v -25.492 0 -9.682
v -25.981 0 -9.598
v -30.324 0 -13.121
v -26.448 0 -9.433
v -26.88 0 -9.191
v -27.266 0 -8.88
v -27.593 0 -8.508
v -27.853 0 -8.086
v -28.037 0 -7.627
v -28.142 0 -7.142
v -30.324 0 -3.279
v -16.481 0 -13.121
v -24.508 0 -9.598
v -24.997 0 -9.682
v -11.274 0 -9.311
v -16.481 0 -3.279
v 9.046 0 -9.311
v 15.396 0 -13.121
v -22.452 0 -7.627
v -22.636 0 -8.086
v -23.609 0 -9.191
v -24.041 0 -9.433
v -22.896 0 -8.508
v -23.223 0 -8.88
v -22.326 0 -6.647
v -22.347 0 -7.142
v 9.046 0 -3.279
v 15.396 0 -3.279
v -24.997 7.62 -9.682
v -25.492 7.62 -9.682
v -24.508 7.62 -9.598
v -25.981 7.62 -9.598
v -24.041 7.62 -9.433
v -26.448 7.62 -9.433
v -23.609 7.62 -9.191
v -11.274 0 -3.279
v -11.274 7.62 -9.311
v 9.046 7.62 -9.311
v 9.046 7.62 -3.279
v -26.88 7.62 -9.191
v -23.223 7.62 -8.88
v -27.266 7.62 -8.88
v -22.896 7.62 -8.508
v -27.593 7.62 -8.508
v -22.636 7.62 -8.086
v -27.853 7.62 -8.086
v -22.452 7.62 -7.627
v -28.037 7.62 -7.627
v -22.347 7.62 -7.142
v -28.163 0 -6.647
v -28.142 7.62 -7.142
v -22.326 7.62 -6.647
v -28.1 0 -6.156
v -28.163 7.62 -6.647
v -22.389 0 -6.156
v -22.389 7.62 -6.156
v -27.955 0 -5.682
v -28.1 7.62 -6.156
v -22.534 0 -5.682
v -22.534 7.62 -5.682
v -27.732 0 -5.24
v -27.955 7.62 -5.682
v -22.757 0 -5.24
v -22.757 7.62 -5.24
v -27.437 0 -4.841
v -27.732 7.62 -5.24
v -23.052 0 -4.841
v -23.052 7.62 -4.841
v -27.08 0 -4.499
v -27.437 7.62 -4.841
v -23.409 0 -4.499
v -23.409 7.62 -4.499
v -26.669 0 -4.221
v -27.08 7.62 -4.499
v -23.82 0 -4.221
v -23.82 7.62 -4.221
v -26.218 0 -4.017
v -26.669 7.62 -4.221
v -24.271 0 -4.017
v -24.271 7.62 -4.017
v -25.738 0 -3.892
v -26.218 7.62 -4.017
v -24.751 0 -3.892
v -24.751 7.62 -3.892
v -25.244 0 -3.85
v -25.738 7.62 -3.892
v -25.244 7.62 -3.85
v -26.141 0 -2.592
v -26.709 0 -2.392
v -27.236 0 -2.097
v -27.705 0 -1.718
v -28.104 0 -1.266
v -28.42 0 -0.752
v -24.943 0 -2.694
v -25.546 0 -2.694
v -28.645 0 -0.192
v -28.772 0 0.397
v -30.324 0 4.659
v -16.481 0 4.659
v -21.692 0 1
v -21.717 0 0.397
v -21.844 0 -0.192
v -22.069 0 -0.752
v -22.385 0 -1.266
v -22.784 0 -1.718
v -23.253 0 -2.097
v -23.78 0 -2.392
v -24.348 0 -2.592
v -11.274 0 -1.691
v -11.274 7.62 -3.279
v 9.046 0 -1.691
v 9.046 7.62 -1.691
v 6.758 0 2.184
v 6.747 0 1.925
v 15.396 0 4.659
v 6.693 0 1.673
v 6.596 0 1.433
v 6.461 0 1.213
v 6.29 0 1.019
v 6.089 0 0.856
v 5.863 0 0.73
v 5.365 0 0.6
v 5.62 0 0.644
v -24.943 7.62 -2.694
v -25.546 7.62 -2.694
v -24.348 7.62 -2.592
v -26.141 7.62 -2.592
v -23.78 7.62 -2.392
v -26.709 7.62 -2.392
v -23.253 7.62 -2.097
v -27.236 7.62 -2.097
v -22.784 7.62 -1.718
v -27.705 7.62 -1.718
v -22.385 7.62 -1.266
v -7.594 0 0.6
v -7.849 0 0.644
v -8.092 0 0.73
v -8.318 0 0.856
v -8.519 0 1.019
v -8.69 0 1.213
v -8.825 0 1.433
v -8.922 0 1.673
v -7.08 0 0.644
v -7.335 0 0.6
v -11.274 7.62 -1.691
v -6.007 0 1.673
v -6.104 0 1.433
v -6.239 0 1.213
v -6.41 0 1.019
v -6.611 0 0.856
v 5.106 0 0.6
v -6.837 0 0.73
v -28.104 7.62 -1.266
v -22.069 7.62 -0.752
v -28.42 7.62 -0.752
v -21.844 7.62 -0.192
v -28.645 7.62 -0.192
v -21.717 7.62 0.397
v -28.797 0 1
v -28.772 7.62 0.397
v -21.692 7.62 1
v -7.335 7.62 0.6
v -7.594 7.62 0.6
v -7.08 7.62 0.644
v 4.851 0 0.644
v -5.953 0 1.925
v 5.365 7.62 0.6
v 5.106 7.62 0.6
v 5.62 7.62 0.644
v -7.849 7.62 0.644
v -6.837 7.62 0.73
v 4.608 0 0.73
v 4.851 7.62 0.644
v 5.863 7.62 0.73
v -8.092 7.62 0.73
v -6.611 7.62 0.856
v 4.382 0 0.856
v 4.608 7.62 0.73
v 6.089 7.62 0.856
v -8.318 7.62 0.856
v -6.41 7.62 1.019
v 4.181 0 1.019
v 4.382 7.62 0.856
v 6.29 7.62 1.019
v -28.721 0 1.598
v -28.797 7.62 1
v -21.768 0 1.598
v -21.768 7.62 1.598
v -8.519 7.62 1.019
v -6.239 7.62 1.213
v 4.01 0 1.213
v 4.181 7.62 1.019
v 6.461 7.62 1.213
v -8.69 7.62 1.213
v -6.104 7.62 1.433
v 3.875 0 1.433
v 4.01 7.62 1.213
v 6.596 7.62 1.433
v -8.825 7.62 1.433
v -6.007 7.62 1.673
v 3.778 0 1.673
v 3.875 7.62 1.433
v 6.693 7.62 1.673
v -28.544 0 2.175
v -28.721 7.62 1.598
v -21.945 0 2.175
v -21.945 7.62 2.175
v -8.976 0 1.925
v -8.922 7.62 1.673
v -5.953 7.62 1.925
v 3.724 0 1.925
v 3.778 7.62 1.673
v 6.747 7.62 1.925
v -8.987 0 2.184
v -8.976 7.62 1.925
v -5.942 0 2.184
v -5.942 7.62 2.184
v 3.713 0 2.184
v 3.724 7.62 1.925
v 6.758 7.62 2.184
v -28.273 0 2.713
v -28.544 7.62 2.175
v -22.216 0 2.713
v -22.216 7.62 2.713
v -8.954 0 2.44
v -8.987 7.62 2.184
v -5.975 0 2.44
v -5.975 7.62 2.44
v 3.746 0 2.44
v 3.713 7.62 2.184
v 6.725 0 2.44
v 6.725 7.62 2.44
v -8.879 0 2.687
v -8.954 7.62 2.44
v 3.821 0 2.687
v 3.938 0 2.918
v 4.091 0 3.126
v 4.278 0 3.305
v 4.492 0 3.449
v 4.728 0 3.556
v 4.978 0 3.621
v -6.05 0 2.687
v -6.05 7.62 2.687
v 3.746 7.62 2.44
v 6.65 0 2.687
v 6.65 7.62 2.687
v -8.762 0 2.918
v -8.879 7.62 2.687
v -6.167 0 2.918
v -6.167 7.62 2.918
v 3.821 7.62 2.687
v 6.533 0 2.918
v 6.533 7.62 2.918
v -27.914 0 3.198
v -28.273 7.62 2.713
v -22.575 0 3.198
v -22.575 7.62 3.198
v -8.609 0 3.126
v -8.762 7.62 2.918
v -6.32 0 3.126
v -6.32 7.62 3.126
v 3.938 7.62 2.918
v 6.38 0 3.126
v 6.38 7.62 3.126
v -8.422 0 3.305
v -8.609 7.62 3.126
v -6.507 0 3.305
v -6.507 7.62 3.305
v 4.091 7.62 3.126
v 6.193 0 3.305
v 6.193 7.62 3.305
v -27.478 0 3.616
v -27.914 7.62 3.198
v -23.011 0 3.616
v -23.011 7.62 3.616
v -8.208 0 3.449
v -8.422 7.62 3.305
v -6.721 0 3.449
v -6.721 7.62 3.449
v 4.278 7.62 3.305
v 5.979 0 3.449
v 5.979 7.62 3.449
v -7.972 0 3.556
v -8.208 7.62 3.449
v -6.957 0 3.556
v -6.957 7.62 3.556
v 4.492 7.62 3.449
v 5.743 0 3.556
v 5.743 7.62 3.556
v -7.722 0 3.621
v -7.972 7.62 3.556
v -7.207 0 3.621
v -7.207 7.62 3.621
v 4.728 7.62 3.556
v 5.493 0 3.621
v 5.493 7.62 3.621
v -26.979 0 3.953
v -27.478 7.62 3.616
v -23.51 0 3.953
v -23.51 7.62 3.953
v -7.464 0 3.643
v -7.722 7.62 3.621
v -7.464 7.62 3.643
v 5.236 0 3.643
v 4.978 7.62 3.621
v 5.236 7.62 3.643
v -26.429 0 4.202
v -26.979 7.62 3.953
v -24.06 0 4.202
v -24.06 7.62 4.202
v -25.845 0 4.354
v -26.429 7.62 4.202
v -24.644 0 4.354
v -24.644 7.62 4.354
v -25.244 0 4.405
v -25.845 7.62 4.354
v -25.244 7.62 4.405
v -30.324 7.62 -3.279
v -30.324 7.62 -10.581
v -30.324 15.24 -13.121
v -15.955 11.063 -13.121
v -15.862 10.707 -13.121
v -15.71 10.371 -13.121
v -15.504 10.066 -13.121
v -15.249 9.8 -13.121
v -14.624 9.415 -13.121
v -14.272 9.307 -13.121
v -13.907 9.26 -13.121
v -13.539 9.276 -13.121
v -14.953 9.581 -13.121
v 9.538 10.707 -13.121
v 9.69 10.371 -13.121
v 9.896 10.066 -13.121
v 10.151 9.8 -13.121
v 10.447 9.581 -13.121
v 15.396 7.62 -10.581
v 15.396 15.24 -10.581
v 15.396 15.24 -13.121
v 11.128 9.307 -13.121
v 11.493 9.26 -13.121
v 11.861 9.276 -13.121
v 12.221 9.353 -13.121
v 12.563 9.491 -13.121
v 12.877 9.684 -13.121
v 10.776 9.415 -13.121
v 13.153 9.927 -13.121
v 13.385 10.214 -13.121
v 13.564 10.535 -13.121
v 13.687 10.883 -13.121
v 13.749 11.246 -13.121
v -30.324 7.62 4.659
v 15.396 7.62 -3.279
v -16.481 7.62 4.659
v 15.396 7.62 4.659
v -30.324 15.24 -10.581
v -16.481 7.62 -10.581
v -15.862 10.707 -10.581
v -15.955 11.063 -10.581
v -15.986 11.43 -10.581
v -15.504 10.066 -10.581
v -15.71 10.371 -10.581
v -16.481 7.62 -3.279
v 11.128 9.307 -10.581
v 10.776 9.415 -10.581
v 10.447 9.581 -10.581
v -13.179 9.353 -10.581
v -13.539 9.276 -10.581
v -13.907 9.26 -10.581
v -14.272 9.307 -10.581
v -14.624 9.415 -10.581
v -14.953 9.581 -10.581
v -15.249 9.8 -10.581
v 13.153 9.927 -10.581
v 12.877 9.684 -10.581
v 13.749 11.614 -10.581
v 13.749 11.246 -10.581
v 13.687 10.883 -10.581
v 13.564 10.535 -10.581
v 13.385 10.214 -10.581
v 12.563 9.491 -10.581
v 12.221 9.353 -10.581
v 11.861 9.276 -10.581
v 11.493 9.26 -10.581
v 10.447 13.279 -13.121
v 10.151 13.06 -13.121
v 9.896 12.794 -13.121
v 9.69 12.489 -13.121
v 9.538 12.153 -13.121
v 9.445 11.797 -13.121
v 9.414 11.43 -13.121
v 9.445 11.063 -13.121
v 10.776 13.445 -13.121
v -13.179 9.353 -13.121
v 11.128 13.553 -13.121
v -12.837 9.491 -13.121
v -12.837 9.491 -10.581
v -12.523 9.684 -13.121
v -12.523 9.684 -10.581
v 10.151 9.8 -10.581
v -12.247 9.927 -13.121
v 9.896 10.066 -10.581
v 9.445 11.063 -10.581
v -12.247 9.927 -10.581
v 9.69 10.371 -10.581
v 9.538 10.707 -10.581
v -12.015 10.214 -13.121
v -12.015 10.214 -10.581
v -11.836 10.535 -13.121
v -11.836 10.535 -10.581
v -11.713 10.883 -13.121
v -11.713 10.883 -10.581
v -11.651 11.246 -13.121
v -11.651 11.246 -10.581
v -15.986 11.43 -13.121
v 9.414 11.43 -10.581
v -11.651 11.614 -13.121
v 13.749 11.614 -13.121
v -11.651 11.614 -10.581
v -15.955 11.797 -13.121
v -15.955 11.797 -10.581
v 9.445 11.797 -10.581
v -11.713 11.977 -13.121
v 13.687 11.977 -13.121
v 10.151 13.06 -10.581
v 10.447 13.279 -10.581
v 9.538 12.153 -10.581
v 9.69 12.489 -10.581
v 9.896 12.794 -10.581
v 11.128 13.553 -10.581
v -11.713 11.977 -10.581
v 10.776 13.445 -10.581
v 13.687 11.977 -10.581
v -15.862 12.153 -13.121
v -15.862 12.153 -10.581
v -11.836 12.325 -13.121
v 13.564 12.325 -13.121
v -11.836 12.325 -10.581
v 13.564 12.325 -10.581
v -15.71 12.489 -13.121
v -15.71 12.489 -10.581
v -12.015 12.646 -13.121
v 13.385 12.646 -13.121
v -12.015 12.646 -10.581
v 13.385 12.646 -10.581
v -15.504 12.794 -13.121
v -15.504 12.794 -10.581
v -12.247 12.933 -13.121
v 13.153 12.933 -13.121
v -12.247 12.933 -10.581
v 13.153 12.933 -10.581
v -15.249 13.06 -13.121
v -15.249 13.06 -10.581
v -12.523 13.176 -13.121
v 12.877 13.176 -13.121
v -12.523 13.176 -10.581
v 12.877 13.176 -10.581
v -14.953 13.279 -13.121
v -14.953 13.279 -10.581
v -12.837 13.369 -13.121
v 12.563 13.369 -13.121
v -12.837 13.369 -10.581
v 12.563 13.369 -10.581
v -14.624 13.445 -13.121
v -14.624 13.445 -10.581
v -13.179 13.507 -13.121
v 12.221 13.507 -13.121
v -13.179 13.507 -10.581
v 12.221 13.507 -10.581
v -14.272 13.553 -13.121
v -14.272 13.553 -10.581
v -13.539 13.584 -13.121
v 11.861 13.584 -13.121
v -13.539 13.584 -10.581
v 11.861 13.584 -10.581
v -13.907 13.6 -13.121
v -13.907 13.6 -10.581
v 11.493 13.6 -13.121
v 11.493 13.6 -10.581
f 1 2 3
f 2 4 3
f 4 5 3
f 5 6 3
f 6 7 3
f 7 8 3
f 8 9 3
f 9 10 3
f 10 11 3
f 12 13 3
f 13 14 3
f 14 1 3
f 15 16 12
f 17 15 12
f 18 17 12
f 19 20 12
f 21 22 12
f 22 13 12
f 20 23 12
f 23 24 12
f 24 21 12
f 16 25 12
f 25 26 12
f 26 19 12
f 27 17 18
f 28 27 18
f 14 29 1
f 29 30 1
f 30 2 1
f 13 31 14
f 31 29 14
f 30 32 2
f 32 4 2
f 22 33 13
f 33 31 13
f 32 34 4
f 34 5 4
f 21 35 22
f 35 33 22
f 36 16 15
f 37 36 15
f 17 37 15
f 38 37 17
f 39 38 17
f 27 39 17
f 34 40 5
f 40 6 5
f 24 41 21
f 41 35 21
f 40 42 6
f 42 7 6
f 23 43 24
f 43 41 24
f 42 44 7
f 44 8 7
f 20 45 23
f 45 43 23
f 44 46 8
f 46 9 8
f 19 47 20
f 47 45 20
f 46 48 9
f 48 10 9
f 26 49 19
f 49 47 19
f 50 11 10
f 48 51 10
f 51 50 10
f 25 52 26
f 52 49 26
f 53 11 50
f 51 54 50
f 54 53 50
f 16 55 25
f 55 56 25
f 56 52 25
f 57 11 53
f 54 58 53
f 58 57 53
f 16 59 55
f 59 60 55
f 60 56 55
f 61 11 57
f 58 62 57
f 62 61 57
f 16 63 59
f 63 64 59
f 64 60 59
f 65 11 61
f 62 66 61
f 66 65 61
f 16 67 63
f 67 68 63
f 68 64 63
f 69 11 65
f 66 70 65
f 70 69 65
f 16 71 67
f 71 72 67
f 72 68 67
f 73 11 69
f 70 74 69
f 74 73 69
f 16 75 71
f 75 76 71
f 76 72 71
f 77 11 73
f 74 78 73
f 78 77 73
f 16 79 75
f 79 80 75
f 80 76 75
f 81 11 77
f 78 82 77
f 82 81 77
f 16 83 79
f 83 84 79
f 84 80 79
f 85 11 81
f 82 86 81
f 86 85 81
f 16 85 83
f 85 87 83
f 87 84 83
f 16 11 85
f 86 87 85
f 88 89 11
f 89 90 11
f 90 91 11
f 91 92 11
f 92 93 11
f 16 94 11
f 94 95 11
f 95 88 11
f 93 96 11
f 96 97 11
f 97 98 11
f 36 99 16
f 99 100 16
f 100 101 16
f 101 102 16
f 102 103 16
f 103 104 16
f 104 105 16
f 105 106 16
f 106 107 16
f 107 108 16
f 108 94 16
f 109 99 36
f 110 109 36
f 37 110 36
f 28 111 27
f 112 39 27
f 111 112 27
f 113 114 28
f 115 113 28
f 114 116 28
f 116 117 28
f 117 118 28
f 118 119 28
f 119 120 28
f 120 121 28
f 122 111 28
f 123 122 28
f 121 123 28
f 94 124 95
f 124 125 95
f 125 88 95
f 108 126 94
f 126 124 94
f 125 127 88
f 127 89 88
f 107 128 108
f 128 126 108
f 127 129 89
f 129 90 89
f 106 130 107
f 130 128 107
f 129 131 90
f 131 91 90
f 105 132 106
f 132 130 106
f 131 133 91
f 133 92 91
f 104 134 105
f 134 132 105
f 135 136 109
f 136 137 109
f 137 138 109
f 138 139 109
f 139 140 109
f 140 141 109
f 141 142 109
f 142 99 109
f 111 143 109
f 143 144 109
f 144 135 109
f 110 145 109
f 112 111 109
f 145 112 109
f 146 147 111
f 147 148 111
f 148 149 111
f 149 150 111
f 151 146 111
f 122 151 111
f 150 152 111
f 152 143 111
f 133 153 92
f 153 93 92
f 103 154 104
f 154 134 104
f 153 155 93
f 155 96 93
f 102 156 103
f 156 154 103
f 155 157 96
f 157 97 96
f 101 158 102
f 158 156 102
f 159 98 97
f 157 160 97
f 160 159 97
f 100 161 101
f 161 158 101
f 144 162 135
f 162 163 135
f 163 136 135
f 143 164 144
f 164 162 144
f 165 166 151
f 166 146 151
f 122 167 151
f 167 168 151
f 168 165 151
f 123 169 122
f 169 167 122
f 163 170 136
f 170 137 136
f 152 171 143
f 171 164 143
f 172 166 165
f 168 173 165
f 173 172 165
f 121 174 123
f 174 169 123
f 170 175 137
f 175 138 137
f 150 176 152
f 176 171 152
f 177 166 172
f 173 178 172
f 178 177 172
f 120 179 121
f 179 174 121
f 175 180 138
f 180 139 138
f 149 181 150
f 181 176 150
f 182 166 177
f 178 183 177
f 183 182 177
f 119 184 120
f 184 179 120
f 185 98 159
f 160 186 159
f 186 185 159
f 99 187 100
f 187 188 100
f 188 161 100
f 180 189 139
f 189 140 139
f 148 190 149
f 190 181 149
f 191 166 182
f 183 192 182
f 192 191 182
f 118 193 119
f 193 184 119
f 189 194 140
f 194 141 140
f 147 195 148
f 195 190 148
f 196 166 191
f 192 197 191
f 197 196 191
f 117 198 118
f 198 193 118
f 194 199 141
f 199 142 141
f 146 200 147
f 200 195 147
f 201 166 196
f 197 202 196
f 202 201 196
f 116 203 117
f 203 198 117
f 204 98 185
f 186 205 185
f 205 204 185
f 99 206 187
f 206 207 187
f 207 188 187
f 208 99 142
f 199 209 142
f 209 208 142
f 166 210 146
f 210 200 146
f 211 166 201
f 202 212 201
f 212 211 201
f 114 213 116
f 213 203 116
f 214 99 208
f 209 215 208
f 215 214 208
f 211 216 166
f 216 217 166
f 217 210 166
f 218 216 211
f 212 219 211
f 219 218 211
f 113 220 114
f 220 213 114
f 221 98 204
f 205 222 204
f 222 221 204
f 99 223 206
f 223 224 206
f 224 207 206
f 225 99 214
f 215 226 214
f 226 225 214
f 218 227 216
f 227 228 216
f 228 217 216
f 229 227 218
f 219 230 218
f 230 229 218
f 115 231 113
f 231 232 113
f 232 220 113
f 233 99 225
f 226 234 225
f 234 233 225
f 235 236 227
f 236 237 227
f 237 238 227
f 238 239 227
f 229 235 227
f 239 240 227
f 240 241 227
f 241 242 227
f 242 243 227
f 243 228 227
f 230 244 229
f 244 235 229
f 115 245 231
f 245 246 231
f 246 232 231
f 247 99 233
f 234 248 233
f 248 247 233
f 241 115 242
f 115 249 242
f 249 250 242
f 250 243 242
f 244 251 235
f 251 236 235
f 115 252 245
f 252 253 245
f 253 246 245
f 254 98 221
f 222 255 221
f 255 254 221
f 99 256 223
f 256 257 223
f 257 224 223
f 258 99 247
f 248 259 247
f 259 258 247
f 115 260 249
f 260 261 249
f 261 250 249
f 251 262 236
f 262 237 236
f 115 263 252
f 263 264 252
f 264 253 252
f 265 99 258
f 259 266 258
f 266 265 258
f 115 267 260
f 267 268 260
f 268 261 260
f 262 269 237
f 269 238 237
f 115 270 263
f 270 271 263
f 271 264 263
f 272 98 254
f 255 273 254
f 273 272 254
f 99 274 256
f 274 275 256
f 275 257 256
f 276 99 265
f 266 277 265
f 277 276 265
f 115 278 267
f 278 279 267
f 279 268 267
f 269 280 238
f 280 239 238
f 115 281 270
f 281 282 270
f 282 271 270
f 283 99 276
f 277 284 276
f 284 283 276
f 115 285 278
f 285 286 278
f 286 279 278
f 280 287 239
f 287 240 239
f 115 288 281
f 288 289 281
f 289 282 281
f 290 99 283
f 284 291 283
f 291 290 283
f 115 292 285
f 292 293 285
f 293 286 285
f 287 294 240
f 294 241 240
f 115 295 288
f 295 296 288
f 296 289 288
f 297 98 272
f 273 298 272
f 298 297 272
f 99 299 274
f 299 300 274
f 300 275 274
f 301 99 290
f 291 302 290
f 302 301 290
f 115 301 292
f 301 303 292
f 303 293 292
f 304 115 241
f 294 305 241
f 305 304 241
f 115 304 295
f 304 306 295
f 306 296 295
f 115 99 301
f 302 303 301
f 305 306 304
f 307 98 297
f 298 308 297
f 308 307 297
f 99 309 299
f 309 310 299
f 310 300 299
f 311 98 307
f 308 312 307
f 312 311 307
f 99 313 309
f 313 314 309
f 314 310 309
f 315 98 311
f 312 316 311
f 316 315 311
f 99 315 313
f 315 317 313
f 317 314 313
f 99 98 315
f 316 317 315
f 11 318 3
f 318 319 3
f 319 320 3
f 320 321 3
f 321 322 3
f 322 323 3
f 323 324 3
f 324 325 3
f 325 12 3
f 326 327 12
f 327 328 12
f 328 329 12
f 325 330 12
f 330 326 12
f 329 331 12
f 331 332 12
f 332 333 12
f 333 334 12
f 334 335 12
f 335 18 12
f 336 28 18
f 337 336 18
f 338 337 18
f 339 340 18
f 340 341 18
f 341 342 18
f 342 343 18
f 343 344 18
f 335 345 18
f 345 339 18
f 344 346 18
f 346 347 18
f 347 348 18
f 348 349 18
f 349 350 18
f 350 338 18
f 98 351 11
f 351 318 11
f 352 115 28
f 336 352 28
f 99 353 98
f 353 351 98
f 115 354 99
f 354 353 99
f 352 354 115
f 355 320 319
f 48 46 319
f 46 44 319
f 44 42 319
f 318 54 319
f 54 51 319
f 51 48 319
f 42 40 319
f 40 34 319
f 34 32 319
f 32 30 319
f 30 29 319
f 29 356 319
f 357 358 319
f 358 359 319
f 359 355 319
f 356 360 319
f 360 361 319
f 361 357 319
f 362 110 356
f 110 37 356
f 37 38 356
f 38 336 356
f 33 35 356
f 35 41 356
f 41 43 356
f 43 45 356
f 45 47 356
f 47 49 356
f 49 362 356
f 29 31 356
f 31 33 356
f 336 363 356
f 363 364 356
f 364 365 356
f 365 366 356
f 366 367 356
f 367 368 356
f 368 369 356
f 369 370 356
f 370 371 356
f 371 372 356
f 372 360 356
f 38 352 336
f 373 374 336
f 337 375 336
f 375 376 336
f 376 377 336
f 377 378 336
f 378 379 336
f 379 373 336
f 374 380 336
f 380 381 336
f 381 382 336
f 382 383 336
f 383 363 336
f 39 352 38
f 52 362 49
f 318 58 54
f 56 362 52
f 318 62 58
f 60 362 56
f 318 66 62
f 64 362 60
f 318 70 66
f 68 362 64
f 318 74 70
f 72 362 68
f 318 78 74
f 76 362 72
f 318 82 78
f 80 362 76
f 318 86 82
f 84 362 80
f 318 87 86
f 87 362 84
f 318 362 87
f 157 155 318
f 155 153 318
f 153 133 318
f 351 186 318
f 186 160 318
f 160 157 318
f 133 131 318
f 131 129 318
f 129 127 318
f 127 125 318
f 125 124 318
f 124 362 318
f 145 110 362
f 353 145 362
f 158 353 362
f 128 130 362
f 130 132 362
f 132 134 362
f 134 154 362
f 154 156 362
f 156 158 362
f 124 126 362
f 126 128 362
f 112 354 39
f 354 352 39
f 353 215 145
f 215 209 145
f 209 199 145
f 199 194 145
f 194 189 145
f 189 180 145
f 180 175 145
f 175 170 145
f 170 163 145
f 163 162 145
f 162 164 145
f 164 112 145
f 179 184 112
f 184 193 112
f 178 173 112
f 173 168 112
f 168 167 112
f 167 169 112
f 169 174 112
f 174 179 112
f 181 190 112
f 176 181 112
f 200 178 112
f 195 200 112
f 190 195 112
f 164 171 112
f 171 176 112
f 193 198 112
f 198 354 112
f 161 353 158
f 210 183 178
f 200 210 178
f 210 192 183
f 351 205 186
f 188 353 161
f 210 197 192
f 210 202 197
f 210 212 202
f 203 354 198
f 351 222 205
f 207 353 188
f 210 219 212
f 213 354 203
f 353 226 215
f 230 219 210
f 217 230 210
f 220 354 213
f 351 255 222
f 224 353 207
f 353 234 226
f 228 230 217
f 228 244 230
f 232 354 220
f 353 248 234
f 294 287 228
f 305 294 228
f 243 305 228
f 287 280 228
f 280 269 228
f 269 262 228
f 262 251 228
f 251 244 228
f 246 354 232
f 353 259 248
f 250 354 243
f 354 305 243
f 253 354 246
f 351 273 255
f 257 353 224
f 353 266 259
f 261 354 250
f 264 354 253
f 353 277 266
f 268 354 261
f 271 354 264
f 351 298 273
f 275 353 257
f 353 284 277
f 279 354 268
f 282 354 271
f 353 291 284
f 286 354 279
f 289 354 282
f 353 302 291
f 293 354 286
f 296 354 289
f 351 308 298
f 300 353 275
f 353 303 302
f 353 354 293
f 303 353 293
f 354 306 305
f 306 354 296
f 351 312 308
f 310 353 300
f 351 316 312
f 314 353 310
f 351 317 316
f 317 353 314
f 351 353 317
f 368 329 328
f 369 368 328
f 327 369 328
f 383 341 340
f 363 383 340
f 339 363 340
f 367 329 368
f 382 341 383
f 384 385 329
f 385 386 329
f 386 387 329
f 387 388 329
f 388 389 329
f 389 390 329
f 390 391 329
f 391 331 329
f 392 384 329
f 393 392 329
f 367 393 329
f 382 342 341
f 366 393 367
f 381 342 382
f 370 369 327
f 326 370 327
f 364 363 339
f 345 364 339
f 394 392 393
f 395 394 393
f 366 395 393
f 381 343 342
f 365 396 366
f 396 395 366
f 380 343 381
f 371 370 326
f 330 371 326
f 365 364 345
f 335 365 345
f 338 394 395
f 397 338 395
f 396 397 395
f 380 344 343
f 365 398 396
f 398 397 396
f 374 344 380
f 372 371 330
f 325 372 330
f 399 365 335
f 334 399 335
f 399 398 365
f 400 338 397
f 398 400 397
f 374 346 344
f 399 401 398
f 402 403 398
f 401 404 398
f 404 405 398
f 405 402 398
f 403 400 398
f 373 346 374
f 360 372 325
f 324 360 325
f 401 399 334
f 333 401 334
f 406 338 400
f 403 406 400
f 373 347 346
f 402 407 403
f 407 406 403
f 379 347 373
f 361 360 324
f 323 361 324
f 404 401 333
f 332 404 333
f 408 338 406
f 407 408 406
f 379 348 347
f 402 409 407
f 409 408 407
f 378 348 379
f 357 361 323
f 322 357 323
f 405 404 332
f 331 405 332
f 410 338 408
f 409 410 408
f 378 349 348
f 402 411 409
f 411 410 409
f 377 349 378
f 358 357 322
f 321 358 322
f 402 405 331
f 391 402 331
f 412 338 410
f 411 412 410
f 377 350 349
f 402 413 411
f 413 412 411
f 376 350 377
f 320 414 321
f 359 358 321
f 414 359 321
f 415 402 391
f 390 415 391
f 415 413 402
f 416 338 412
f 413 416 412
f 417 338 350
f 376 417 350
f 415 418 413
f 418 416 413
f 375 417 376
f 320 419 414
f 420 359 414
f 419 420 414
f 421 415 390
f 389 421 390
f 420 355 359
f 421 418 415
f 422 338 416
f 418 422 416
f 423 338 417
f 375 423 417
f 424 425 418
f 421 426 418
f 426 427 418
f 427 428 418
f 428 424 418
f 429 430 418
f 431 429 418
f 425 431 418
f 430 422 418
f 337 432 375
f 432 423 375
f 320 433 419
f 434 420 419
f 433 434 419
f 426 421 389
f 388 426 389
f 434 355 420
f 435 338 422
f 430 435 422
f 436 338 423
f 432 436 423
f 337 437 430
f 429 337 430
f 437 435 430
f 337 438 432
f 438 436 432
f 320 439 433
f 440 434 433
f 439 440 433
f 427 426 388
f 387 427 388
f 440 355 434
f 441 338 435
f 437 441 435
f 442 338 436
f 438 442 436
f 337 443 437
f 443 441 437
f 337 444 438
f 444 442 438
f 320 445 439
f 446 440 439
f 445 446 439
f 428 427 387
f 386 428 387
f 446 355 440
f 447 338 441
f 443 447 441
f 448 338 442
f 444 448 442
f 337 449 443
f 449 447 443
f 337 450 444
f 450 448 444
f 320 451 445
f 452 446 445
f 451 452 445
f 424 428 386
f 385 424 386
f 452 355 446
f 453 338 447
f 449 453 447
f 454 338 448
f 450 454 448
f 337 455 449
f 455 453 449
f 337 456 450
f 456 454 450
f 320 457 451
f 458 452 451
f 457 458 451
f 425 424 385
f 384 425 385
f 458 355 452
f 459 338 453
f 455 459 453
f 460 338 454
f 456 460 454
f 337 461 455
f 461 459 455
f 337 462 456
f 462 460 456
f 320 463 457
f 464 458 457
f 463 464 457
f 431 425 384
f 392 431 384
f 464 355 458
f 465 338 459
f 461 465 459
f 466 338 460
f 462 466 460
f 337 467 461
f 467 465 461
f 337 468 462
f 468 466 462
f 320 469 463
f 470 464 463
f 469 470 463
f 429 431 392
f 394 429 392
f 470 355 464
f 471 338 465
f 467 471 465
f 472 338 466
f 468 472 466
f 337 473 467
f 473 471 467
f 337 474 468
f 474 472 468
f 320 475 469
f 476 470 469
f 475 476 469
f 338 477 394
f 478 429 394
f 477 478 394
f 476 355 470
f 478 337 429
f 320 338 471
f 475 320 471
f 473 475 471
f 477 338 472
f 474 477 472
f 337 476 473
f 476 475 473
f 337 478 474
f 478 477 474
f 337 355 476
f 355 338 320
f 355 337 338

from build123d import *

# Parameters (mm, degrees)
SKETCH1_W           = 45.72
SKETCH1_H           = 17.78
BOSS_EXTRUDE1_DEPTH = 7.62
SKETCH2_W           = 45.72
SKETCH2_H           = 2.54
BOSS_EXTRUDE2_DEPTH = 7.62
SKETCH3_R           = 2.1717
CUT_EXTRUDE1_DEPTH  = 2.54
SKETCH4_R           = 3.556
SKETCH4_R_2         = 2.921
SKETCH4_R_3         = 1.524
SKETCH4_W           = 20.32
SKETCH4_H           = 7.62
CUT_EXTRUDE2_DEPTH  = 7.62


with BuildPart() as part:
    # Sketch1 → Boss-Extrude1 (new body)
    with BuildSketch(Plane(origin=(0, 0, 0), x_dir=(1, 0, 0), z_dir=(0, 1, 0))):
        with Locations((-7.464489796, 4.231173469)):
            Rectangle(SKETCH1_W, SKETCH1_H)
    extrude(amount=BOSS_EXTRUDE1_DEPTH)

    # Sketch2 → Boss-Extrude2 (add)
    with BuildSketch(Plane(origin=(0, 7.62, 0), x_dir=(1, 0, 0), z_dir=(0, 1, 0))):
        with Locations((-7.464489796, 11.851173469)):
            Rectangle(SKETCH2_W, SKETCH2_H)
    extrude(amount=BOSS_EXTRUDE2_DEPTH)

    # Sketch3 → Cut-Extrude1 (cut)
    with BuildSketch(Plane(origin=(0, 0, -13.121173469), x_dir=(-1, 0, 0), z_dir=(0, 0, -1))):
        with Locations((13.814489796, 11.43)):
            Circle(SKETCH3_R)
        with Locations((-11.585510204, 11.43)):
            Circle(SKETCH3_R)
    extrude(amount=-CUT_EXTRUDE1_DEPTH, mode=Mode.SUBTRACT)

    # Sketch4 → Cut-Extrude2 (cut)
    with BuildSketch(Plane(origin=(0, 7.62, 0), x_dir=(1, 0, 0), z_dir=(0, 1, 0))):
        with Locations(Location((-25.244489796, -0.848826531, 0), (0, 0, 270))):
            Circle(SKETCH4_R)
        with Locations(Location((-25.244489796, 6.771173469, 0), (0, 0, 270))):
            Circle(SKETCH4_R_2)
        with Locations(Location((-7.464489796, -2.118826531, 0), (0, 0, 270))):
            Circle(SKETCH4_R_3)
        with Locations(Location((5.235510204, -2.118826531, 0), (0, 0, 270))):
            Circle(SKETCH4_R_3)
        with Locations((-1.114489796, 5.501173469)):
            Rectangle(SKETCH4_W, SKETCH4_H)
    extrude(amount=-CUT_EXTRUDE2_DEPTH, mode=Mode.SUBTRACT)


solid = part.part
